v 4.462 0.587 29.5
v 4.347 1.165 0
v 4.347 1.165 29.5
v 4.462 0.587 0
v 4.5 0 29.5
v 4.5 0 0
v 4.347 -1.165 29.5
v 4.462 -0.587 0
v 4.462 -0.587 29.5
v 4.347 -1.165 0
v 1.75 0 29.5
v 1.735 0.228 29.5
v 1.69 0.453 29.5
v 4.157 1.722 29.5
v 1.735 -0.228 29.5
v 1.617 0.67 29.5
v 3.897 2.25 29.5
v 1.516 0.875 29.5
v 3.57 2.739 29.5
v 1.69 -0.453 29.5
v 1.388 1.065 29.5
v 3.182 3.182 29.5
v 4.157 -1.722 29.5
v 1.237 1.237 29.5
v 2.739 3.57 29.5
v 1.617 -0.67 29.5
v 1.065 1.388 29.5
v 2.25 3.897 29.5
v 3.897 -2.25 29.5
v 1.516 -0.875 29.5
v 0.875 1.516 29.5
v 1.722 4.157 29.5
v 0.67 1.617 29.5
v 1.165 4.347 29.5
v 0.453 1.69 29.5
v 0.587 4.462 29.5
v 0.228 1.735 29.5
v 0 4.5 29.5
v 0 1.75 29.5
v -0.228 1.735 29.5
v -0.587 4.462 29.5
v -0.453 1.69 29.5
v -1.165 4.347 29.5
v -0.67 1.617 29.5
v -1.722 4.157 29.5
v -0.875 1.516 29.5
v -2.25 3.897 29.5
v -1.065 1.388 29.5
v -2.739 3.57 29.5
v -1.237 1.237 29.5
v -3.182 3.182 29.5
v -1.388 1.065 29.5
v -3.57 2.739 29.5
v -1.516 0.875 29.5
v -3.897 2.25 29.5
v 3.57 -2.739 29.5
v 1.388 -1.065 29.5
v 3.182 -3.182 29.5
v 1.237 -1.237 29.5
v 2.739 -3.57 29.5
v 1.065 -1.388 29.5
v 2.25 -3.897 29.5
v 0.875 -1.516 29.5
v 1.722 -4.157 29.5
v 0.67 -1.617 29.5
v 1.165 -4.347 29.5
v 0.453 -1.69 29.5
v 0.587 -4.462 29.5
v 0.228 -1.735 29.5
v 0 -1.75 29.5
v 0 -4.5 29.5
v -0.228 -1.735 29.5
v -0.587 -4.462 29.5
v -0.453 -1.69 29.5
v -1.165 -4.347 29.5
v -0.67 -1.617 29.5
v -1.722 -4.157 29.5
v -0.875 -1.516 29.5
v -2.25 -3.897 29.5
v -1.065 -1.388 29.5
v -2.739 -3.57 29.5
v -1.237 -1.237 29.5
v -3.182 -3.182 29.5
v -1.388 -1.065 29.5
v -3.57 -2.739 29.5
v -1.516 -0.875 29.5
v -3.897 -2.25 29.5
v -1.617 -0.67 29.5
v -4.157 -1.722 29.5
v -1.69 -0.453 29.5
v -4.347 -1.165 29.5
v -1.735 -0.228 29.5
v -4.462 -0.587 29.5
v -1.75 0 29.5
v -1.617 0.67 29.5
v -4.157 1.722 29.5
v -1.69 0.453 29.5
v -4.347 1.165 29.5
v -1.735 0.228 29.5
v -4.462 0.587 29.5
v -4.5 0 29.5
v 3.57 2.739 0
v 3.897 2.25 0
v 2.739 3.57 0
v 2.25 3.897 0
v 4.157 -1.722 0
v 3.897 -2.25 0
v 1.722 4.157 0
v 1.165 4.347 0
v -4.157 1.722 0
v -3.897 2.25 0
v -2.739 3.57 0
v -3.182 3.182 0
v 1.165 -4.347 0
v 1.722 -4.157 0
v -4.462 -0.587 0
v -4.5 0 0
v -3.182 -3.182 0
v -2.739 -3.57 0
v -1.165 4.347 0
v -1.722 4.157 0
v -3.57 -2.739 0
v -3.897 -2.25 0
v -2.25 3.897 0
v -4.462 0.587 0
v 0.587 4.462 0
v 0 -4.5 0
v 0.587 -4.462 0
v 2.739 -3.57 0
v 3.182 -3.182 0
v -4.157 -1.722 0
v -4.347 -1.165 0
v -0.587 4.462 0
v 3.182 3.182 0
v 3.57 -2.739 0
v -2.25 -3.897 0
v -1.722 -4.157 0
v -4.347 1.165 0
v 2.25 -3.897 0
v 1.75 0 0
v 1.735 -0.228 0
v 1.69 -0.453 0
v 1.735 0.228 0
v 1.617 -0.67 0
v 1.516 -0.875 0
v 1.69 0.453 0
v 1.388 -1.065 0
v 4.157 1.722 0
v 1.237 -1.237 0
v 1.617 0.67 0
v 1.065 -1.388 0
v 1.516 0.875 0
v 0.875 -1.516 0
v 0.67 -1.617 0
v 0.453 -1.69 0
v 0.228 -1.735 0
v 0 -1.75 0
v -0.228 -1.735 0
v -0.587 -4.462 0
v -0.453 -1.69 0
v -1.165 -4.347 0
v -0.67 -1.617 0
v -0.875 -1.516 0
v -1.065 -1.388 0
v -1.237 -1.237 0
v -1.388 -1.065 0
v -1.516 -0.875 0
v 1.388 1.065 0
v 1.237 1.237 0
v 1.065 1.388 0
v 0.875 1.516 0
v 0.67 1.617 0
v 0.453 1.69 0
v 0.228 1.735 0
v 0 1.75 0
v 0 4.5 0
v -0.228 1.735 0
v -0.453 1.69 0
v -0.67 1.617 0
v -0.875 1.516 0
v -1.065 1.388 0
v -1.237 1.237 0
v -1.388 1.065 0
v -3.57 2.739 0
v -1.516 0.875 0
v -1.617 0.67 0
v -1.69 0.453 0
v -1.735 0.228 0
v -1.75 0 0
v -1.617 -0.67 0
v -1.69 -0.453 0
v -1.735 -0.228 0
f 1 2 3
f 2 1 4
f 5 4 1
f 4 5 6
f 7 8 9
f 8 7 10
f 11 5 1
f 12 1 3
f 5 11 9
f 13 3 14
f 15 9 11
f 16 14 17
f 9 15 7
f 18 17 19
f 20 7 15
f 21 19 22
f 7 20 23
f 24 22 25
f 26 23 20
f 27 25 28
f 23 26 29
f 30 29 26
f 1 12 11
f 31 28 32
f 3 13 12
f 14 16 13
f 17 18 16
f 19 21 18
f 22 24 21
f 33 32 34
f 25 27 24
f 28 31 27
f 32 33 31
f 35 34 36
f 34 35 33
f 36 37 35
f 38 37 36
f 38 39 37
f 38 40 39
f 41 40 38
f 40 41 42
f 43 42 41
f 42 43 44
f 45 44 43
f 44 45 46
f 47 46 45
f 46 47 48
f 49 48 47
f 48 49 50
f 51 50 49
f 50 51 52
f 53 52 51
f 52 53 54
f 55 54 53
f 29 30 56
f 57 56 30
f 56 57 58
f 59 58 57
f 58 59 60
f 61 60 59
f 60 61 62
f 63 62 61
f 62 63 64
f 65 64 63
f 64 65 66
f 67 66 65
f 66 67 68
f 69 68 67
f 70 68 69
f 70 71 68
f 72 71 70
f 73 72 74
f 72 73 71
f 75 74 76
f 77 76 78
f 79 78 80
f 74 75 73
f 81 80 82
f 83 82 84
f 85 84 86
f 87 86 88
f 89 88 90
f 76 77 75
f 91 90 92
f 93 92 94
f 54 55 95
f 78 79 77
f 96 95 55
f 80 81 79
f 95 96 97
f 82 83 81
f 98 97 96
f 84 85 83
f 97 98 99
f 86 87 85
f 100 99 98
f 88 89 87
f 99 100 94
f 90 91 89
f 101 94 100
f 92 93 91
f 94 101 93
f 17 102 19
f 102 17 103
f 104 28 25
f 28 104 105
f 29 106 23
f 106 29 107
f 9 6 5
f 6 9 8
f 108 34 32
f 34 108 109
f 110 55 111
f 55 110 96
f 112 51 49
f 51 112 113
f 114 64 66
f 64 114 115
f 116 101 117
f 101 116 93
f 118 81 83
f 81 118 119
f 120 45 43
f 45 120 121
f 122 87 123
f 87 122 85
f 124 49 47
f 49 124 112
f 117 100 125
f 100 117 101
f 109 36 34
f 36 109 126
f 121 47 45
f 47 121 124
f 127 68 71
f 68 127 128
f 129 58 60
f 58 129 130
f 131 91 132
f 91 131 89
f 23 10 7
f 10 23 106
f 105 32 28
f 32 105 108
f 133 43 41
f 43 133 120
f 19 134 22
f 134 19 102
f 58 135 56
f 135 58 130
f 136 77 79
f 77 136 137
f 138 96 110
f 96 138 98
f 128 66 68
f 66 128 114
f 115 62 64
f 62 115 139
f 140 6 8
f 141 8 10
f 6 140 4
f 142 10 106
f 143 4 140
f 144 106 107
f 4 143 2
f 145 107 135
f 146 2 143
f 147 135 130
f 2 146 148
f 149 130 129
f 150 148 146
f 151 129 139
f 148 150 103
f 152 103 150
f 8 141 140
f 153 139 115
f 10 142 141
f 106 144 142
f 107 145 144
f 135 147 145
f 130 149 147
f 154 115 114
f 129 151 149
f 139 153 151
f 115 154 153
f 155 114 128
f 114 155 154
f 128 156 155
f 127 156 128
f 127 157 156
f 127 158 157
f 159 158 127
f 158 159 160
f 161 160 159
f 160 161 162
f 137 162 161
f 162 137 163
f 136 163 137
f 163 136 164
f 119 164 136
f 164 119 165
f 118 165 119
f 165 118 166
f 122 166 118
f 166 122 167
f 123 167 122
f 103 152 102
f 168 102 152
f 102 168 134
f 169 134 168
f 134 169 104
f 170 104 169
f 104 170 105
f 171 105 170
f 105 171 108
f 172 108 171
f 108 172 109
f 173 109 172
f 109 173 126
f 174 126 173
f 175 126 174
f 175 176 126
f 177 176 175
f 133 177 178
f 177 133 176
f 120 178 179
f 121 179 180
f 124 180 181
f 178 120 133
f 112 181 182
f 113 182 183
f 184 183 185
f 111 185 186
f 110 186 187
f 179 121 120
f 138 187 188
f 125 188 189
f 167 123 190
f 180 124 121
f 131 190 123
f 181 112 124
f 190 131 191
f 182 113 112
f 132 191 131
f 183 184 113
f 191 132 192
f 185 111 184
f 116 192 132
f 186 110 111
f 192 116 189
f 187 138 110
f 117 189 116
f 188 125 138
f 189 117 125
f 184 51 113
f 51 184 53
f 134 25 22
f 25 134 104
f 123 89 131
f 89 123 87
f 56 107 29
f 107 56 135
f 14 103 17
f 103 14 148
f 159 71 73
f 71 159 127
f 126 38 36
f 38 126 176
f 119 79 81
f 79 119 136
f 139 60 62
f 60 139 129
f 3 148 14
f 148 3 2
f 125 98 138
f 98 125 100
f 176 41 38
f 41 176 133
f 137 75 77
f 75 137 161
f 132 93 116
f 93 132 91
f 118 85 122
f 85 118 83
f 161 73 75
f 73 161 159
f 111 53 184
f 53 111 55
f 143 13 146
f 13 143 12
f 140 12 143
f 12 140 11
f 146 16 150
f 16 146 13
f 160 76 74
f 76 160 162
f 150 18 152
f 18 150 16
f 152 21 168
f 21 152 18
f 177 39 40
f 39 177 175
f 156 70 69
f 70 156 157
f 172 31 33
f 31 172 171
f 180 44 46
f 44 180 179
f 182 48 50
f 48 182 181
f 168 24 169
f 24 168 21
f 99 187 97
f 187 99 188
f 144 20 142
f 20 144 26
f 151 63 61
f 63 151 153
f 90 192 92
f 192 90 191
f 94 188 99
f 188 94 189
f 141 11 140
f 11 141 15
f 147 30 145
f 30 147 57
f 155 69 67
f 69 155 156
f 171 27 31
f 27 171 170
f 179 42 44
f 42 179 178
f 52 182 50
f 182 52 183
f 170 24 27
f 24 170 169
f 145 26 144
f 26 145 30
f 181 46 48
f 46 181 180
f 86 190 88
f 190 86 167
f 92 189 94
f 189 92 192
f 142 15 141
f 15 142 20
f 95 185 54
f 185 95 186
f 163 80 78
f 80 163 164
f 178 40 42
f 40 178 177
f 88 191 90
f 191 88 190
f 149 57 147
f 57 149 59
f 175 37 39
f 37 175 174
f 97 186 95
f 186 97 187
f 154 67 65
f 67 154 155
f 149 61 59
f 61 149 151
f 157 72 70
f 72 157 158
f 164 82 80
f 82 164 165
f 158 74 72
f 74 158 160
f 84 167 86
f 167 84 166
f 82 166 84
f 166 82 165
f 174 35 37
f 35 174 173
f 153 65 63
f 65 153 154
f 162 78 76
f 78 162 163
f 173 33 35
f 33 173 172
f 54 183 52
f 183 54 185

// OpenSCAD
// Gen-DF — frame standoff tube between stator and an endbell, on each M3 frame rod (outside rotor OD).
// Print x4. Height = frame_standoff_h (rotor + steel + hub + collar + running clearance).
include <parameters.scad>;
$fn = 48;
difference() {
    cylinder(d=standoff_od, h=frame_standoff_h);
    translate([0, 0, -0.1]) cylinder(d=m3_clear, h=frame_standoff_h + 0.2);
}
